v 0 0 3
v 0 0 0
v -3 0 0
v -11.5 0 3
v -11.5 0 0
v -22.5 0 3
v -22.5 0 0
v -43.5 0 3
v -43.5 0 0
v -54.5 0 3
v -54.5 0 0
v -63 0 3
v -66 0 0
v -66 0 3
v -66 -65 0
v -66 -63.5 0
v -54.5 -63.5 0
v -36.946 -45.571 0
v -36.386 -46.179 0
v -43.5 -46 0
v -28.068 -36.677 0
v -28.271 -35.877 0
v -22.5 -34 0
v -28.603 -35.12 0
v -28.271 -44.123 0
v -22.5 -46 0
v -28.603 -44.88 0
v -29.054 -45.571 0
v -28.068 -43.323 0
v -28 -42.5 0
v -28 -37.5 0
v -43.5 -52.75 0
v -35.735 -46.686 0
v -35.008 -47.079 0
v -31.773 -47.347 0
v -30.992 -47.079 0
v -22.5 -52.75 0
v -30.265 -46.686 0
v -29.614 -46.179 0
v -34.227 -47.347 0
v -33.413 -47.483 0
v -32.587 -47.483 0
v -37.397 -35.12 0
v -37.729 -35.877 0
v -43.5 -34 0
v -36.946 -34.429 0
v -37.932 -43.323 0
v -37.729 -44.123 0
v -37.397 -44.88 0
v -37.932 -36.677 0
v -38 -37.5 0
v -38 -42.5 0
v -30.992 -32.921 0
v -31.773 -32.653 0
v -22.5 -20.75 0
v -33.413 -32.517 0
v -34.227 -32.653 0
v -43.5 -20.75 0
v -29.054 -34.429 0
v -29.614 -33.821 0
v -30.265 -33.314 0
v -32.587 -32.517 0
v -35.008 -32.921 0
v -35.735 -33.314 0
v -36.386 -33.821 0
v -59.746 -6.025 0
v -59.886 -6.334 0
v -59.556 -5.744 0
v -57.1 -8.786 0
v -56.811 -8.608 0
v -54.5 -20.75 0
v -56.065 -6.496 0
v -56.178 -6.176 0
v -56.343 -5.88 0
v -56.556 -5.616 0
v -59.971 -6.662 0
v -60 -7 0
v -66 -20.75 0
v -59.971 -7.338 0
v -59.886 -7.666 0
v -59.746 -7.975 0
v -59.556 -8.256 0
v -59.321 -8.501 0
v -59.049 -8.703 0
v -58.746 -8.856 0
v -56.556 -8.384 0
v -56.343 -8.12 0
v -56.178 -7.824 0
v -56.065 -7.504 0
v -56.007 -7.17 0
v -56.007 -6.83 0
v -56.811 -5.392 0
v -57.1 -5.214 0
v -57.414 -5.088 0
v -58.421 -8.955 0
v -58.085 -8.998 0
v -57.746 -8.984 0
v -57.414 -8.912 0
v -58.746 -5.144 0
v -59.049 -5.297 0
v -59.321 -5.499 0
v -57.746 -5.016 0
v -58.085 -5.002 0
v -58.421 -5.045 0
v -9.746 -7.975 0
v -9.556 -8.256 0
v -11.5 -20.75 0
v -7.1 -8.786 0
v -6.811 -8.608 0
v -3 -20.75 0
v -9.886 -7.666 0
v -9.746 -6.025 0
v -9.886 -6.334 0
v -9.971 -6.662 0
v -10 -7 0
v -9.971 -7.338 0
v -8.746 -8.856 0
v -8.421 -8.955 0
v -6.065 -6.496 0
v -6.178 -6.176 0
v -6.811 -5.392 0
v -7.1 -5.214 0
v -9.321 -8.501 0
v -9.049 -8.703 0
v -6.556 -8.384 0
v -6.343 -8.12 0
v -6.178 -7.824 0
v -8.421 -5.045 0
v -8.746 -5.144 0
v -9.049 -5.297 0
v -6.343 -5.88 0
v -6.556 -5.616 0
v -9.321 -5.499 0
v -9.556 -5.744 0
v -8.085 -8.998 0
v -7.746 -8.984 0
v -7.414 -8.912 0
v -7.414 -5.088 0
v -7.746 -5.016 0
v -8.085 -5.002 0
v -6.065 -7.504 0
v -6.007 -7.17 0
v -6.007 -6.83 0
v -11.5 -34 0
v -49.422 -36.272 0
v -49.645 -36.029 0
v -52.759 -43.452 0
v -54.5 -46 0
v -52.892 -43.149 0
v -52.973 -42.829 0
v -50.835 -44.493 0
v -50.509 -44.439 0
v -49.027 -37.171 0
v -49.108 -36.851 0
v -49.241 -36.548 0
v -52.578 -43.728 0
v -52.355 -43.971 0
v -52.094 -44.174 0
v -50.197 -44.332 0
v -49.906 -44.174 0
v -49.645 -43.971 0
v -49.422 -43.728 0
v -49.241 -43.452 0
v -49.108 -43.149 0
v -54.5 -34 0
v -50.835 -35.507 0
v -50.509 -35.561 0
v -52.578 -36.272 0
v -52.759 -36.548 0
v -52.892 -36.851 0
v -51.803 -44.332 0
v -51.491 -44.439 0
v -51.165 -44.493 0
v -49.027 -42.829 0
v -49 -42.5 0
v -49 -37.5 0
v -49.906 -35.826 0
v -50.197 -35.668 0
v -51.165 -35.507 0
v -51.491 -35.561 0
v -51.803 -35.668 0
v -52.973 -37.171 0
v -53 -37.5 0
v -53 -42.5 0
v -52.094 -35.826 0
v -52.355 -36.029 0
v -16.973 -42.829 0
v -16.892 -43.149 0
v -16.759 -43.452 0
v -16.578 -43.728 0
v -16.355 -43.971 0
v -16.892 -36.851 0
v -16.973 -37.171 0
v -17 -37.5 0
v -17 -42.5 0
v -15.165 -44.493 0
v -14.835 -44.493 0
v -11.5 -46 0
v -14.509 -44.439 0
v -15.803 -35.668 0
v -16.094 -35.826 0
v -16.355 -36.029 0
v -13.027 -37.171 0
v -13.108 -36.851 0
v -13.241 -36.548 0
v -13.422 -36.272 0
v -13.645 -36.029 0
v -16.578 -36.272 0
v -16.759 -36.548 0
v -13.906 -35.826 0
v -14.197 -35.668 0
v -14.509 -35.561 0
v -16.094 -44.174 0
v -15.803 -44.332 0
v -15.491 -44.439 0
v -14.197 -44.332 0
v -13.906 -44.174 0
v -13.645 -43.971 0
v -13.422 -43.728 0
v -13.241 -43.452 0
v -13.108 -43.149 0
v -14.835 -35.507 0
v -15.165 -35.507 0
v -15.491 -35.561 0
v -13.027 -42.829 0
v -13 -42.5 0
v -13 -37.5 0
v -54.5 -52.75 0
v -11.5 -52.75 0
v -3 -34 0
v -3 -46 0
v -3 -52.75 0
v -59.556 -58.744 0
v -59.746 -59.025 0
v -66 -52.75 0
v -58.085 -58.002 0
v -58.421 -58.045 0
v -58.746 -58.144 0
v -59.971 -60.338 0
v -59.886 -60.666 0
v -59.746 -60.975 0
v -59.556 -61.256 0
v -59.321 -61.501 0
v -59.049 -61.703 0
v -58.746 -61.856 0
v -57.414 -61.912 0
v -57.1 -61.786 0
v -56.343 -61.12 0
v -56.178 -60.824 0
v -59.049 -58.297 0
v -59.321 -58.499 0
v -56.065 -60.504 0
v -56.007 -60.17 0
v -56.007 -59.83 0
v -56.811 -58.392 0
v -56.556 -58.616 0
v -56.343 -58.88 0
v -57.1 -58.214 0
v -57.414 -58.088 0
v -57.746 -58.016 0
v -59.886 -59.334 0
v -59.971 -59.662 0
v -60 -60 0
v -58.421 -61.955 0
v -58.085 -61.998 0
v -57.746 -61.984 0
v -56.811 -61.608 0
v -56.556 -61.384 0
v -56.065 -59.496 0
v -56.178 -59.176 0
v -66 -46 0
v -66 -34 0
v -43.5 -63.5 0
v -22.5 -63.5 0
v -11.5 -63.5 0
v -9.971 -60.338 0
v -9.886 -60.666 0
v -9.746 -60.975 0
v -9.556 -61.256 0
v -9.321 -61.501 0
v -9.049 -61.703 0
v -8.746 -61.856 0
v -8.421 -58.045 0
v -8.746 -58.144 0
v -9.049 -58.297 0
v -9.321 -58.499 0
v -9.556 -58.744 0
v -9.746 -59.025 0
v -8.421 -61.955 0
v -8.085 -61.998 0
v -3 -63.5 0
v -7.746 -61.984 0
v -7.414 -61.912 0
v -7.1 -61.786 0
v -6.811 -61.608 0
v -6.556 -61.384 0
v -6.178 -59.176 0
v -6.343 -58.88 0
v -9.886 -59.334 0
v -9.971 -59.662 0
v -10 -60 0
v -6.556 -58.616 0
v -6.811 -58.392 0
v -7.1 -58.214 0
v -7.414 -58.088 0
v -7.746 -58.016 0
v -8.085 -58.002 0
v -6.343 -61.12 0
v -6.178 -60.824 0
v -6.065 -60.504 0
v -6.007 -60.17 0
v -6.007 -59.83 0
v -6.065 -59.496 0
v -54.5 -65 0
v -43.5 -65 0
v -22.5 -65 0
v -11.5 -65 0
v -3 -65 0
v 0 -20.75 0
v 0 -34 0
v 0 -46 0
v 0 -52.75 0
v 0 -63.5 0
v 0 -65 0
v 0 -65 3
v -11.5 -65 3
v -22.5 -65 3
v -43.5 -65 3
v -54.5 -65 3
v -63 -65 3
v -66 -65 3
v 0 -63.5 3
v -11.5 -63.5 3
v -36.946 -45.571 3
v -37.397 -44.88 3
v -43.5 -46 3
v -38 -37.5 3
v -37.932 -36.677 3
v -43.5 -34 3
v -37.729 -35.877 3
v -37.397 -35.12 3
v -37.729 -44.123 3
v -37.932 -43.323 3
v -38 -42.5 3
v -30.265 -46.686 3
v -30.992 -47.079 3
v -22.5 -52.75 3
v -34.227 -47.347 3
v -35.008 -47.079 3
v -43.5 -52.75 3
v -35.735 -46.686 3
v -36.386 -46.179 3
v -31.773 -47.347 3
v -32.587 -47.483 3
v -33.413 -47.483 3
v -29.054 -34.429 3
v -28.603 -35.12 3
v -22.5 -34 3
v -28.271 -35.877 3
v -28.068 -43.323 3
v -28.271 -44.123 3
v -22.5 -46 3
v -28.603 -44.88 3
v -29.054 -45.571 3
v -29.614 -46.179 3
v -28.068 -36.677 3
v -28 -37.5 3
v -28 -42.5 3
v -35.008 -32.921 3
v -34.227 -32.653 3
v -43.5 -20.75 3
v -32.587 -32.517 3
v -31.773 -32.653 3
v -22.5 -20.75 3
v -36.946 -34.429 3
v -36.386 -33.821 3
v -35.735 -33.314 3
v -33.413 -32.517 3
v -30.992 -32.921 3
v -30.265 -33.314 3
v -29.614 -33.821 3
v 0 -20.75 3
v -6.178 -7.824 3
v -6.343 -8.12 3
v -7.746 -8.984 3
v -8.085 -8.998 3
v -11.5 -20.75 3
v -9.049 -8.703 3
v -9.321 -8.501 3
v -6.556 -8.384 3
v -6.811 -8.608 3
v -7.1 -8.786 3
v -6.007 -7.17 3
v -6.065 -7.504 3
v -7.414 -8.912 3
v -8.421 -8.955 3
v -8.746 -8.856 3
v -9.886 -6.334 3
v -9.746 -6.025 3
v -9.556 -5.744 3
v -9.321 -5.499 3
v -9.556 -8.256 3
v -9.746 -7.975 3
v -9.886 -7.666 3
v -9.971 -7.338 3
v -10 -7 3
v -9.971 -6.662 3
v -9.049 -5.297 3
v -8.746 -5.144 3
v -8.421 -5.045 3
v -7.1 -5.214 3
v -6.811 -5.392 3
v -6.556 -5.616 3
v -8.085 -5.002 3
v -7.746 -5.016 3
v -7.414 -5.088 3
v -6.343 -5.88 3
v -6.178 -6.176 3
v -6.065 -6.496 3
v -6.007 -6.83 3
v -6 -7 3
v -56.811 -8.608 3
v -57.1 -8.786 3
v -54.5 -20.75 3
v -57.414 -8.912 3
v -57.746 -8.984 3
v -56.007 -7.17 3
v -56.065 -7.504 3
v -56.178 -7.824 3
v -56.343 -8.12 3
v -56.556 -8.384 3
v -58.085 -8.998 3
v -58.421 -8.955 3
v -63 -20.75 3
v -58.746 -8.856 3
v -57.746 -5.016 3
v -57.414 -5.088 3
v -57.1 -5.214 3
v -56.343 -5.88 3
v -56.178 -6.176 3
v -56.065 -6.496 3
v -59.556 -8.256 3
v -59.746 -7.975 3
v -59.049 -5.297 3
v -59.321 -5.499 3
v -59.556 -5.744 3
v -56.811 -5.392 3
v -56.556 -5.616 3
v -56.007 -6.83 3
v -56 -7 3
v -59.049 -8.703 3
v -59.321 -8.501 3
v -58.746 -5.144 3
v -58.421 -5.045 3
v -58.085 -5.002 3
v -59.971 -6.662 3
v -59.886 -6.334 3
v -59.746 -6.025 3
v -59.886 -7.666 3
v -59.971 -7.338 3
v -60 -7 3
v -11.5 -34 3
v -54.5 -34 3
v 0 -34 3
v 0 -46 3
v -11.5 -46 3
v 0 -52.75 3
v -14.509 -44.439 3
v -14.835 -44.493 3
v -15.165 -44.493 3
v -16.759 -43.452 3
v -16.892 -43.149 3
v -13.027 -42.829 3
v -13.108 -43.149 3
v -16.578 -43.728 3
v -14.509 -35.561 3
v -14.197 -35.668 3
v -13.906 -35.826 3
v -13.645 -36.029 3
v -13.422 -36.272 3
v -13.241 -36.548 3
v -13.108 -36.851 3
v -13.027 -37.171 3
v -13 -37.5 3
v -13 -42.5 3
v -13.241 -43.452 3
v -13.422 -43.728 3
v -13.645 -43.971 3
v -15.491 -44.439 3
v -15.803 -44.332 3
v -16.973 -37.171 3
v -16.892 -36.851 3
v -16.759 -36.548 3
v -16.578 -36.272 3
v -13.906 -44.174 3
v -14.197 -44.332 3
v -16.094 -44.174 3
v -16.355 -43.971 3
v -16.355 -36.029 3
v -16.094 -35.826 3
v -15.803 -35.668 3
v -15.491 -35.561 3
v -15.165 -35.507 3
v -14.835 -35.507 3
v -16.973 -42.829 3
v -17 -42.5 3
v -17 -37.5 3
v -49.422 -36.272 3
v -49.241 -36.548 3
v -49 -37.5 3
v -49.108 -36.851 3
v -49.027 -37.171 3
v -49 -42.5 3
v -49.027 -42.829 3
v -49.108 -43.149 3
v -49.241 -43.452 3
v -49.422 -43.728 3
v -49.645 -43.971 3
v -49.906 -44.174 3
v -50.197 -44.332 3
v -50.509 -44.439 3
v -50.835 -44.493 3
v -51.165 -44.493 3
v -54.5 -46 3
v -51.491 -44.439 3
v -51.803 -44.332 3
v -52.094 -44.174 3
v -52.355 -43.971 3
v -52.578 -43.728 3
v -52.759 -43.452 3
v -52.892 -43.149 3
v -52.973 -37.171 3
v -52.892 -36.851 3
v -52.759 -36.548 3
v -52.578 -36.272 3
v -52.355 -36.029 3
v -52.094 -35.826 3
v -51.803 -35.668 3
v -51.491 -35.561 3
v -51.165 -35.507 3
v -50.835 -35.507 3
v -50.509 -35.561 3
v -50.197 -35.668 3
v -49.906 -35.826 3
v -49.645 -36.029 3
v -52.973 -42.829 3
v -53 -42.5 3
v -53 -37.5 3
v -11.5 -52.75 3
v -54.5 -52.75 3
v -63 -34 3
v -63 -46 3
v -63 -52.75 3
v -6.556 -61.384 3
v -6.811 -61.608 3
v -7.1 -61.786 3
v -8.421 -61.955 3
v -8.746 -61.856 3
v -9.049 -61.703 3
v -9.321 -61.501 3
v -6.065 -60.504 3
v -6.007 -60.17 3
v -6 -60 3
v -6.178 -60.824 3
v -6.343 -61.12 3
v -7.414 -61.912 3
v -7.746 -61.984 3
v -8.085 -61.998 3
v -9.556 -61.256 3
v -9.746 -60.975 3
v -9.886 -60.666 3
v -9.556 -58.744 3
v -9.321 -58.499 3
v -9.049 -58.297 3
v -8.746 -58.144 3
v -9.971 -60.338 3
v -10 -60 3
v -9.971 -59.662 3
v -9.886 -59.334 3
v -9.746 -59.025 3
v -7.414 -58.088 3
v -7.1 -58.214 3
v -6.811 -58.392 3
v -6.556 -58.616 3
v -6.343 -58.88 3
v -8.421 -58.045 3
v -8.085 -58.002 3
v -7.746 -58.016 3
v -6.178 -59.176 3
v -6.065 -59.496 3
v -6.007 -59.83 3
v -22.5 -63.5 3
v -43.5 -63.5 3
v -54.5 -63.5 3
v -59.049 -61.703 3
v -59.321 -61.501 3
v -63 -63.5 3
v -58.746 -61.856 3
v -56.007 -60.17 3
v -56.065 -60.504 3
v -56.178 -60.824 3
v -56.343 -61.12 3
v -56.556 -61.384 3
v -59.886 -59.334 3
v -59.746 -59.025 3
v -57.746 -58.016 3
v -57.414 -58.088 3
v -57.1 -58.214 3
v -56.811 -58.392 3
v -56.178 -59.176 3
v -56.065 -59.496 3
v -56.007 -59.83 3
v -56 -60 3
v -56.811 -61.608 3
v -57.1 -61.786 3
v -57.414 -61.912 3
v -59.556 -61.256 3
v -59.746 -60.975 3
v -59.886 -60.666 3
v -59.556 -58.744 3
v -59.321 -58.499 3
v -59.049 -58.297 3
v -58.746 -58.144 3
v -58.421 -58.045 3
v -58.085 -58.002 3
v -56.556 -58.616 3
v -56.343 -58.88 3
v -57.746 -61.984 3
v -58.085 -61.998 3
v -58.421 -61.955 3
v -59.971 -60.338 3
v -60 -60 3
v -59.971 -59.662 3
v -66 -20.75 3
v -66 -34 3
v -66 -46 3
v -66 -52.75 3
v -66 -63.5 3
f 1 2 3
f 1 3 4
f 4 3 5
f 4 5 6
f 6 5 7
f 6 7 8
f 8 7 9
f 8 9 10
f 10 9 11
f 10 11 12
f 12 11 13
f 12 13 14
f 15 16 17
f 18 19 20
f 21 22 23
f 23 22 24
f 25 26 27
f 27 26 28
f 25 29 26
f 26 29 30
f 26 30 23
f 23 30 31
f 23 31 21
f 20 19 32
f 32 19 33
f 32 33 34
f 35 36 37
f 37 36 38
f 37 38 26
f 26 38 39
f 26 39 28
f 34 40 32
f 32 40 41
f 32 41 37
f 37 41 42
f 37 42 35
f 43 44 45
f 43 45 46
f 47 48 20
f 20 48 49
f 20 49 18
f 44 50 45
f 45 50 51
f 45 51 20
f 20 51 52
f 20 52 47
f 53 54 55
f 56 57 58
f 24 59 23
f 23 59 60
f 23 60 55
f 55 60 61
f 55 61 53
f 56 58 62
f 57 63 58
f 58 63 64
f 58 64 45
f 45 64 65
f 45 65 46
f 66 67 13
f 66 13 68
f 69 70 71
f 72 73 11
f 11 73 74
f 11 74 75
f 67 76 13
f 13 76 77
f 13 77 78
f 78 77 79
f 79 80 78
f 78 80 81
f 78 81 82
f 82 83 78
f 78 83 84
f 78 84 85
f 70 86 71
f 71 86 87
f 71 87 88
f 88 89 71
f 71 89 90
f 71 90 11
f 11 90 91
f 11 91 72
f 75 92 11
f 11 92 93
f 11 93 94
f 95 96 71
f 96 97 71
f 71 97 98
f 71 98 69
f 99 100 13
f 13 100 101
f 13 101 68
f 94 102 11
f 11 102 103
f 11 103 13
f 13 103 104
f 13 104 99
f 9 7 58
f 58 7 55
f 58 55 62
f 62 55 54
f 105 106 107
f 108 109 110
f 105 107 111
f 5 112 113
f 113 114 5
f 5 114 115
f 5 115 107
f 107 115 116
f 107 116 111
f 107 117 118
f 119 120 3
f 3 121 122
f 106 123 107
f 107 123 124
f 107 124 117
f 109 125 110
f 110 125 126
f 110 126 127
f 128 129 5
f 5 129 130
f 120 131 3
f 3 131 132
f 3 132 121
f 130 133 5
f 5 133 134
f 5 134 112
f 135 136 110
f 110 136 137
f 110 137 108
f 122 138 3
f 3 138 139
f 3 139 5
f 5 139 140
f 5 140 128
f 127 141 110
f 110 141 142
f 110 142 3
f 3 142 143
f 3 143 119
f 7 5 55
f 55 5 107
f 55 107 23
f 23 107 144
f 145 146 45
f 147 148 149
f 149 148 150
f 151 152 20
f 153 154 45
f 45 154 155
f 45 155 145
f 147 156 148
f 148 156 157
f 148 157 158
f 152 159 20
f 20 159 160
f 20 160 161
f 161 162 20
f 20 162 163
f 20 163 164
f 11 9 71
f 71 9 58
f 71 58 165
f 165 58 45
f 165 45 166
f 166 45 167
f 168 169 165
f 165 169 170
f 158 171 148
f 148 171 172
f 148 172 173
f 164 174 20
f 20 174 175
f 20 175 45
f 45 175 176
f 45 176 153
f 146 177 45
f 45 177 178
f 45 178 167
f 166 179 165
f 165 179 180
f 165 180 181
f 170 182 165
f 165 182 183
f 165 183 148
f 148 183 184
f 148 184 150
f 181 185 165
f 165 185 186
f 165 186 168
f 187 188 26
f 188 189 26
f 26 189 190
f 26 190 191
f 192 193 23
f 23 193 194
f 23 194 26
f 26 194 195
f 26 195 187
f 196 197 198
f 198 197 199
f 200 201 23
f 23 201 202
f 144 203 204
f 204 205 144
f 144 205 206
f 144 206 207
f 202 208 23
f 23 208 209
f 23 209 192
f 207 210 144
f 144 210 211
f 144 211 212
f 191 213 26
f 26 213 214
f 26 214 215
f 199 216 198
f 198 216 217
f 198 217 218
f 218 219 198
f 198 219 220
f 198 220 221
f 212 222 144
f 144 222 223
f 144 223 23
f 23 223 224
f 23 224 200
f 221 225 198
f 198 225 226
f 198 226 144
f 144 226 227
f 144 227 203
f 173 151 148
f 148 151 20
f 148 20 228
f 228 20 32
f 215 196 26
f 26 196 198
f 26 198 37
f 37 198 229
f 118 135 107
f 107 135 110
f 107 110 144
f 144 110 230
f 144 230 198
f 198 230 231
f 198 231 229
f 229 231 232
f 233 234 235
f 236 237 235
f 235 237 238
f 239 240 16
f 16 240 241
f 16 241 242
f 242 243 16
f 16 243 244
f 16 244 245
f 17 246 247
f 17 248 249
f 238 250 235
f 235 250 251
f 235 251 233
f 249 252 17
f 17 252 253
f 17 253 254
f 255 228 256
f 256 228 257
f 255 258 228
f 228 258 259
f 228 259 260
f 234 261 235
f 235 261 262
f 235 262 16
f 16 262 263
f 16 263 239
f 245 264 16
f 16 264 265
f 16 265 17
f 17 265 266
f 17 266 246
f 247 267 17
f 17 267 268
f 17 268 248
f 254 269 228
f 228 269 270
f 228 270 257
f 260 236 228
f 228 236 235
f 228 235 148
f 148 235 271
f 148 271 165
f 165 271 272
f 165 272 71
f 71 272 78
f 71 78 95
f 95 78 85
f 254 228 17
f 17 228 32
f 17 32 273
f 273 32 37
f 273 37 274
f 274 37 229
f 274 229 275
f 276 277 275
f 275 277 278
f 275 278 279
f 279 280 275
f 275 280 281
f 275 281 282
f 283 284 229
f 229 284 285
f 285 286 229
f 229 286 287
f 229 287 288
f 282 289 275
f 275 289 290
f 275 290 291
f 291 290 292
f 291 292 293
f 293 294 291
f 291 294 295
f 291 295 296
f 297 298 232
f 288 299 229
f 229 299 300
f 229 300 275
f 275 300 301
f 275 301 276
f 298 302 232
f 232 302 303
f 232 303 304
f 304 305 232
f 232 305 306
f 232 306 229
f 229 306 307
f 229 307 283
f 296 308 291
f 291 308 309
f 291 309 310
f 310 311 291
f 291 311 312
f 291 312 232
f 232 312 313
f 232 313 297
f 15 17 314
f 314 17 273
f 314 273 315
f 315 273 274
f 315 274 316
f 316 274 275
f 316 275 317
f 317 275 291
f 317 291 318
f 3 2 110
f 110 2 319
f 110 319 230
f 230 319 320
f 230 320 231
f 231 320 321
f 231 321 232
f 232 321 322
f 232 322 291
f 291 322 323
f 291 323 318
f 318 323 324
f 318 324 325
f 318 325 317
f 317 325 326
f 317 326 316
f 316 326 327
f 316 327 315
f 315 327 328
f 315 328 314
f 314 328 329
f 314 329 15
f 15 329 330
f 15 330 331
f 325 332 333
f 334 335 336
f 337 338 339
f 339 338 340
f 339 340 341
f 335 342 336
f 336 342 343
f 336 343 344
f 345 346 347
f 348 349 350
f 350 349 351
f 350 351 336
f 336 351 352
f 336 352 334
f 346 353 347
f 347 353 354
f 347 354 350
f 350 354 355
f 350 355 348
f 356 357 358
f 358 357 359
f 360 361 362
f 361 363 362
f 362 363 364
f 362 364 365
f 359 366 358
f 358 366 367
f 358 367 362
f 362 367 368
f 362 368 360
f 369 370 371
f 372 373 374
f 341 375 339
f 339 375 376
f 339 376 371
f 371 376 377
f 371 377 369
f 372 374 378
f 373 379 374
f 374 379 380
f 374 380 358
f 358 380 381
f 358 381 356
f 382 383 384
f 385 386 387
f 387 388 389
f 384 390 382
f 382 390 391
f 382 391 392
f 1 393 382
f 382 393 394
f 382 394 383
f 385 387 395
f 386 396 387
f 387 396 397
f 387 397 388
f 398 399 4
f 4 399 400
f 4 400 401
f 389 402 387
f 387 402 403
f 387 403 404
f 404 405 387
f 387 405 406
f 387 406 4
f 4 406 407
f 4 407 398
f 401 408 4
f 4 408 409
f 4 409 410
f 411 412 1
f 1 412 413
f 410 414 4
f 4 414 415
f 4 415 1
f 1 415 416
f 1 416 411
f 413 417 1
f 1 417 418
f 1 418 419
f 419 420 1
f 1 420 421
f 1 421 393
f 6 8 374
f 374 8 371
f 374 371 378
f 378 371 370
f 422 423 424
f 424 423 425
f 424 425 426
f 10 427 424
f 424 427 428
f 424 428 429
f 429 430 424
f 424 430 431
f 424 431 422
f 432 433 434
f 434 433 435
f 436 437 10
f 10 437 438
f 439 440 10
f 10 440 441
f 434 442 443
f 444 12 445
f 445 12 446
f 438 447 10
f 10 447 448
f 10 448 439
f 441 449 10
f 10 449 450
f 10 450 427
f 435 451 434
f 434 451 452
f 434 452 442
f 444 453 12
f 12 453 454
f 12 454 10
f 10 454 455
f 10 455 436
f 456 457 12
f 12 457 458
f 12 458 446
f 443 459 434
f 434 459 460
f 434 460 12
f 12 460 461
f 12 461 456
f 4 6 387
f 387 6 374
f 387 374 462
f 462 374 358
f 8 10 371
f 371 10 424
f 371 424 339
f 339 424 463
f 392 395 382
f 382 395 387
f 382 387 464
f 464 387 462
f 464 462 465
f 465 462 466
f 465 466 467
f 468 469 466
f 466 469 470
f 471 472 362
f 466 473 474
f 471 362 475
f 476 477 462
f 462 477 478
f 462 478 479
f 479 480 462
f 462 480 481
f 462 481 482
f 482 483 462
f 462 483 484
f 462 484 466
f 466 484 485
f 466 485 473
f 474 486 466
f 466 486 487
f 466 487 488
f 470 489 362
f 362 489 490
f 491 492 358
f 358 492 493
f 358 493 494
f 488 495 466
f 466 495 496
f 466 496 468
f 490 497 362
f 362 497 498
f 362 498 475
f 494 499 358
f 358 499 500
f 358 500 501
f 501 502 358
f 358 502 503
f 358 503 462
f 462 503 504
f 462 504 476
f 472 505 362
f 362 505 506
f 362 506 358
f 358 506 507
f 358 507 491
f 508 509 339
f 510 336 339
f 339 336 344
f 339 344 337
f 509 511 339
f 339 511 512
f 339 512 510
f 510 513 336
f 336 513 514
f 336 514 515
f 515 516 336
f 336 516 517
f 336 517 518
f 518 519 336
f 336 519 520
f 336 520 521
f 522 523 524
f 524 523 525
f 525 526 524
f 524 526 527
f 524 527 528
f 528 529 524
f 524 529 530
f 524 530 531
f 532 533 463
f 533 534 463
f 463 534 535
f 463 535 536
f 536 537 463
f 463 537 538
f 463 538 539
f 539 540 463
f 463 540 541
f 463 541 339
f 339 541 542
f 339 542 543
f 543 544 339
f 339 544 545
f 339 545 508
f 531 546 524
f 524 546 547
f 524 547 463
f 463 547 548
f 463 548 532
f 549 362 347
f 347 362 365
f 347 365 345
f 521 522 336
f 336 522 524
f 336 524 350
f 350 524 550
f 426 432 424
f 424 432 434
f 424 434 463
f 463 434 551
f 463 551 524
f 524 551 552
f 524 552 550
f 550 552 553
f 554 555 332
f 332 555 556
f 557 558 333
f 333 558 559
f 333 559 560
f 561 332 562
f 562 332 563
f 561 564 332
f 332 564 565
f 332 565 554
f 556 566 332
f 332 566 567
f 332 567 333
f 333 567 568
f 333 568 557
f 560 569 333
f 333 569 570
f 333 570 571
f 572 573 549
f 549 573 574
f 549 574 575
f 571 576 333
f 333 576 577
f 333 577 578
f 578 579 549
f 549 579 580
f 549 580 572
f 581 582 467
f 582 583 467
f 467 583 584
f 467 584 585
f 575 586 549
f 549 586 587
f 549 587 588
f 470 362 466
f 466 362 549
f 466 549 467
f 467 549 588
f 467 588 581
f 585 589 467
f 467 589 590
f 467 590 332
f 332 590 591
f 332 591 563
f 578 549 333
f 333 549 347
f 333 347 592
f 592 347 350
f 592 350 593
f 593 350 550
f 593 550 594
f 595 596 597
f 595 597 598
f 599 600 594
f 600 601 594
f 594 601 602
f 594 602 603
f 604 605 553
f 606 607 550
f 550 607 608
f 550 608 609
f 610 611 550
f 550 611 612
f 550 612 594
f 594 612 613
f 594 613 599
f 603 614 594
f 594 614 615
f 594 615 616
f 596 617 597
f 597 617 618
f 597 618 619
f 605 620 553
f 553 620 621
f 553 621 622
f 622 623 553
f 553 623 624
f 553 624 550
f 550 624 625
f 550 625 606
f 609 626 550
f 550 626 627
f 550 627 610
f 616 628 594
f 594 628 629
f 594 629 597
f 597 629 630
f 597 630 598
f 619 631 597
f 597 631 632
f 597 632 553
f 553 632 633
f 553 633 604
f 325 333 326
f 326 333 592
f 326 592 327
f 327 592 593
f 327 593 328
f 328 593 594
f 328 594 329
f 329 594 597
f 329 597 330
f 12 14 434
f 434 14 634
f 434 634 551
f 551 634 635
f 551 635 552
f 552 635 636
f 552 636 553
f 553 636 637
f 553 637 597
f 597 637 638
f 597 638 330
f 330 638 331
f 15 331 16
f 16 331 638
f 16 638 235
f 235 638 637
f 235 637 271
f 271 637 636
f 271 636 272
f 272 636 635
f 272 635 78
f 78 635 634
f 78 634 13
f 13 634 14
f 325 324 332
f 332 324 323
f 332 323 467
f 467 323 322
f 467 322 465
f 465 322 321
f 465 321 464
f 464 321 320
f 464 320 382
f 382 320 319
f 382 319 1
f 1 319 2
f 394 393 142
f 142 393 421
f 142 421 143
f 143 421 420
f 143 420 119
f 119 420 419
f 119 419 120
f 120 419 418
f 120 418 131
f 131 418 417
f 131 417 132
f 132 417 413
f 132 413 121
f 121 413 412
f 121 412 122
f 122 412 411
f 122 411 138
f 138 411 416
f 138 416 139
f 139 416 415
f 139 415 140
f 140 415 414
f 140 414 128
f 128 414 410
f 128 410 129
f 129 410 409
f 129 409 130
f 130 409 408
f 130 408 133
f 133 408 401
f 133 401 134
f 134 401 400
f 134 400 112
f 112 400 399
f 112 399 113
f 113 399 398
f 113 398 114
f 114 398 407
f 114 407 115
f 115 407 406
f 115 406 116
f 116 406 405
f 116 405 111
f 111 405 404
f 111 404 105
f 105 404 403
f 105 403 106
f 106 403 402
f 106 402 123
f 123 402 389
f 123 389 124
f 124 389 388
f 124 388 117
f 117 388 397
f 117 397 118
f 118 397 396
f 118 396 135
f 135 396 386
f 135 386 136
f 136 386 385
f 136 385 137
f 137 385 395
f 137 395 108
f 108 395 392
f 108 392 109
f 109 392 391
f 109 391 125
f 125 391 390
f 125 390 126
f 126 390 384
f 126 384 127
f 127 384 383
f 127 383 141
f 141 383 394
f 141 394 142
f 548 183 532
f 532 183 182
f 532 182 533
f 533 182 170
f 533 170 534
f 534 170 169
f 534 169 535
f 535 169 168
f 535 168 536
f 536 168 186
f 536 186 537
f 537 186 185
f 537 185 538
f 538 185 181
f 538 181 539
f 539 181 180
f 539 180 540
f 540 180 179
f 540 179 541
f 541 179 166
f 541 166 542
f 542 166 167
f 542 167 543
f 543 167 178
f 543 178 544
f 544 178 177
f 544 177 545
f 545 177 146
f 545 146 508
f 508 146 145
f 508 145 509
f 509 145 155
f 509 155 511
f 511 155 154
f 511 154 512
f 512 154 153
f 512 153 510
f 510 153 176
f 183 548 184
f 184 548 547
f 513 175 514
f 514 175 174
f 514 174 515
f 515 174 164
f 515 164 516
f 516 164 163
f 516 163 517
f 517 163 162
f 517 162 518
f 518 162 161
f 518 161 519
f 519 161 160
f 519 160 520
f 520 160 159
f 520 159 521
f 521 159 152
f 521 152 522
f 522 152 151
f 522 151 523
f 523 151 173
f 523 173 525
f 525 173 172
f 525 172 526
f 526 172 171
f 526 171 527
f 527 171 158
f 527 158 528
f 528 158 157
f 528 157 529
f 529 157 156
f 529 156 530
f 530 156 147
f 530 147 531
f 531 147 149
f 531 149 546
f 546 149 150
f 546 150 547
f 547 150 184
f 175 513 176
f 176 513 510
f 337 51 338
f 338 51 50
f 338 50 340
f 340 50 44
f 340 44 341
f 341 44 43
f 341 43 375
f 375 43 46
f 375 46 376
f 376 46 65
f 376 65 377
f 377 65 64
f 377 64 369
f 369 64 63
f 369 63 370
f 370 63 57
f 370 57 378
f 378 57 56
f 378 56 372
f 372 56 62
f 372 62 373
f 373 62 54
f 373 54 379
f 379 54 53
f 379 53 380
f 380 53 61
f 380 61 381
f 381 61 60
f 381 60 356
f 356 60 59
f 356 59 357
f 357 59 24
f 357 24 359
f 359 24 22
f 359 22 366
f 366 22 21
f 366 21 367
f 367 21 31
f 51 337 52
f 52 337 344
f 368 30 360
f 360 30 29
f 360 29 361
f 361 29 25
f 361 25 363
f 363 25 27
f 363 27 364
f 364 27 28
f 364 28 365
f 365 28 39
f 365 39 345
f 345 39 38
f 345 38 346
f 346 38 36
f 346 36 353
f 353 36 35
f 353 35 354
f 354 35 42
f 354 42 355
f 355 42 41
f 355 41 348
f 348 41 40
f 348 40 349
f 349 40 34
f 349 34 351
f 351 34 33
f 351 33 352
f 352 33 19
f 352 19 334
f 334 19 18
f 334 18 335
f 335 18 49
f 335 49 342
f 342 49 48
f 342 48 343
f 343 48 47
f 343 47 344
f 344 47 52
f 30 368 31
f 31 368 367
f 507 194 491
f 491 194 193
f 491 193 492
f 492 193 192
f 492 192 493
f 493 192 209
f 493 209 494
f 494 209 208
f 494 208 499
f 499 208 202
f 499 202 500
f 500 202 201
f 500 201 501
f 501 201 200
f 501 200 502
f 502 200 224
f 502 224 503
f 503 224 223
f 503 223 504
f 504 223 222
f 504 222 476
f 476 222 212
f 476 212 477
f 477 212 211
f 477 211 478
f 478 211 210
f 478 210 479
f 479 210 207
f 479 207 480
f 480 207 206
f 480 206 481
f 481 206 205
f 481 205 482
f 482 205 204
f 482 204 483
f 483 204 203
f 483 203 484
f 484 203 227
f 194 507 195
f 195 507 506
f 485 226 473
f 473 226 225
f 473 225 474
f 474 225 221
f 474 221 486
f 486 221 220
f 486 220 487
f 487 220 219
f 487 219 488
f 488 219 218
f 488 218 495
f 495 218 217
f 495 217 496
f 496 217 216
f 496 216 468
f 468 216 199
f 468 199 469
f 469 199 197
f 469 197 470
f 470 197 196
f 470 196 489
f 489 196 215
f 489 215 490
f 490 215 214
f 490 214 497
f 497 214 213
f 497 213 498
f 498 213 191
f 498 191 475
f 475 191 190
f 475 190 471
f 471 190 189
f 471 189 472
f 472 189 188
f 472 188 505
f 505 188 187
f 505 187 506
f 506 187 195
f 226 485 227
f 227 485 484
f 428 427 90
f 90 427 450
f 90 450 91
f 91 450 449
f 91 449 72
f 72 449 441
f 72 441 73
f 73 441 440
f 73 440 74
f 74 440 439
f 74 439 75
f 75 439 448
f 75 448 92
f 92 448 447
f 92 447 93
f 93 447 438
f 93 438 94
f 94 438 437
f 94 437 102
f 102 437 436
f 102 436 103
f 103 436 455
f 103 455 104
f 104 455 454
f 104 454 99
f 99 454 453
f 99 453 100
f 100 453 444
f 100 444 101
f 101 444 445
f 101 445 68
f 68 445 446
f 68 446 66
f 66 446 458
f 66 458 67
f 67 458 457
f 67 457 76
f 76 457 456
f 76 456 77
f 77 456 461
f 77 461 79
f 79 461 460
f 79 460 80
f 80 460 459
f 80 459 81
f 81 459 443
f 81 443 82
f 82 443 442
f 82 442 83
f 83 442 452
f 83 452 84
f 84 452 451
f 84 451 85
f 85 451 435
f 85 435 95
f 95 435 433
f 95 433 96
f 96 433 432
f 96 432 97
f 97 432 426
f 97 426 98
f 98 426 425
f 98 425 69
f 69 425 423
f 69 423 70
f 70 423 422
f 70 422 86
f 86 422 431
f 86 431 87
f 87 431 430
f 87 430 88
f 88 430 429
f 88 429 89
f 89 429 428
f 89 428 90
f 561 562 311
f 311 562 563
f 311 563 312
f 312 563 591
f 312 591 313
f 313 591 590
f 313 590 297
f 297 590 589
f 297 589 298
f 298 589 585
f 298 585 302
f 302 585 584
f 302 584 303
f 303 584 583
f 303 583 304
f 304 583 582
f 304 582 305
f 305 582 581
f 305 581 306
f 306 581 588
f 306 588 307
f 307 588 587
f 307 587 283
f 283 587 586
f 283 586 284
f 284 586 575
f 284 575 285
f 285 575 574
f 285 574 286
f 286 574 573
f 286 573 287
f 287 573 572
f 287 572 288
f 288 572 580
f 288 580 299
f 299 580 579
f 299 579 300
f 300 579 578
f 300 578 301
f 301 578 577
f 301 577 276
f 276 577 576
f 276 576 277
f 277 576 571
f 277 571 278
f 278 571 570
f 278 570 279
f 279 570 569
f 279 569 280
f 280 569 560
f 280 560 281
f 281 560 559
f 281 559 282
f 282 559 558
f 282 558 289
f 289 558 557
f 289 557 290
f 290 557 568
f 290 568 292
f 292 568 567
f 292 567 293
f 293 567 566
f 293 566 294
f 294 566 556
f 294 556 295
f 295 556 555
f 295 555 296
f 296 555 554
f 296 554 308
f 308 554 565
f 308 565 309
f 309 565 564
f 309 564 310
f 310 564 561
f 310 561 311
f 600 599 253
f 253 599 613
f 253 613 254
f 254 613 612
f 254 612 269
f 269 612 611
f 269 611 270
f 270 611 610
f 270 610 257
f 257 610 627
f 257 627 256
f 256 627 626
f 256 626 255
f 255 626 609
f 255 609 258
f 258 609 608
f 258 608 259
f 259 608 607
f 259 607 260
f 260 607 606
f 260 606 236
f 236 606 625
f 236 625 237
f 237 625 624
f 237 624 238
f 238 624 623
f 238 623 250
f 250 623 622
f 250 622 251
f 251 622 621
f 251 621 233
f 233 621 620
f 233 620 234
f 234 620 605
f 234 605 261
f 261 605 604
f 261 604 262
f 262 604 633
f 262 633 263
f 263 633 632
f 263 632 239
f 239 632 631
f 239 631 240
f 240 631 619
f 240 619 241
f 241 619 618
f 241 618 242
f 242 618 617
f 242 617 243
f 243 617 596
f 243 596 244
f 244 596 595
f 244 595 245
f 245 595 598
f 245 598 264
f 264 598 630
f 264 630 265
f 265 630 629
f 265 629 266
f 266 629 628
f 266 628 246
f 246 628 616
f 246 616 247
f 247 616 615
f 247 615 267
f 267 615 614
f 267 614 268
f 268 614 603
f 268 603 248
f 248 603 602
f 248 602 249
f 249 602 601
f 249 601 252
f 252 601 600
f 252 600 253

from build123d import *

# Parameters (mm, degrees)
SKETCH1_W           = 3
SKETCH1_H           = 65
BOSS_EXTRUDE1_DEPTH = 66
CUT_EXTRUDE3_REACH  = 5
SKETCH5_R           = 2


with BuildPart() as part:
    # Sketch1 → Boss-Extrude1 (new body)
    with BuildSketch(Plane(origin=(0, 0, 0), x_dir=(0, 0, -1), z_dir=(1, 0, 0))):
        with Locations((-1.5, -32.5)):
            Rectangle(SKETCH1_W, SKETCH1_H)
    extrude(amount=-BOSS_EXTRUDE1_DEPTH)

    # Sketch5 → Cut-Extrude3 (cut, up to next)
    with BuildSketch(Plane(origin=(0, 0, 0), x_dir=(-1, 0, 0), z_dir=(0, 0, -1)), mode=Mode.PRIVATE) as cut_extrude3_sk1:
        with Locations((8, -7)):
            Circle(SKETCH5_R)
    cut_extrude3_tool1 = extrude(cut_extrude3_sk1.sketch, amount=-CUT_EXTRUDE3_REACH, mode=Mode.PRIVATE) & part.part
    add(cut_extrude3_tool1.solids().sort_by_distance((-8, -7, 0))[0], mode=Mode.SUBTRACT)
    # Sketch5 → Cut-Extrude3 (cut, up to next)
    with BuildSketch(Plane(origin=(0, 0, 0), x_dir=(-1, 0, 0), z_dir=(0, 0, -1)), mode=Mode.PRIVATE) as cut_extrude3_sk2:
        with Locations((58, -7)):
            Circle(SKETCH5_R)
    cut_extrude3_tool2 = extrude(cut_extrude3_sk2.sketch, amount=-CUT_EXTRUDE3_REACH, mode=Mode.PRIVATE) & part.part
    add(cut_extrude3_tool2.solids().sort_by_distance((-58, -7, 0))[0], mode=Mode.SUBTRACT)
    # Sketch5 → Cut-Extrude3 (cut, up to next)
    with BuildSketch(Plane(origin=(0, 0, 0), x_dir=(-1, 0, 0), z_dir=(0, 0, -1)), mode=Mode.PRIVATE) as cut_extrude3_sk3:
        with Locations((8, -60)):
            Circle(SKETCH5_R)
    cut_extrude3_tool3 = extrude(cut_extrude3_sk3.sketch, amount=-CUT_EXTRUDE3_REACH, mode=Mode.PRIVATE) & part.part
    add(cut_extrude3_tool3.solids().sort_by_distance((-8, -60, 0))[0], mode=Mode.SUBTRACT)
    # Sketch5 → Cut-Extrude3 (cut, up to next)
    with BuildSketch(Plane(origin=(0, 0, 0), x_dir=(-1, 0, 0), z_dir=(0, 0, -1)), mode=Mode.PRIVATE) as cut_extrude3_sk4:
        with Locations((58, -60)):
            Circle(SKETCH5_R)
    cut_extrude3_tool4 = extrude(cut_extrude3_sk4.sketch, amount=-CUT_EXTRUDE3_REACH, mode=Mode.PRIVATE) & part.part
    add(cut_extrude3_tool4.solids().sort_by_distance((-58, -60, 0))[0], mode=Mode.SUBTRACT)
    # Sketch5 → Cut-Extrude3 (cut, up to next)
    with BuildSketch(Plane(origin=(0, 0, 0), x_dir=(-1, 0, 0), z_dir=(0, 0, -1)), mode=Mode.PRIVATE) as cut_extrude3_sk5:
        with BuildLine():
            Line((38, -37.5), (38, -42.5))
            ThreePointArc((38, -42.5), (33, -47.5), (28, -42.5))
            Line((28, -42.5), (28, -37.5))
            ThreePointArc((28, -37.5), (33, -32.5), (38, -37.5))
        make_face()
    cut_extrude3_tool5 = extrude(cut_extrude3_sk5.sketch, amount=-CUT_EXTRUDE3_REACH, mode=Mode.PRIVATE) & part.part
    add(cut_extrude3_tool5.solids().sort_by_distance((-33, -40, 0))[0], mode=Mode.SUBTRACT)
    # Sketch5 → Cut-Extrude3 (cut, up to next)
    with BuildSketch(Plane(origin=(0, 0, 0), x_dir=(-1, 0, 0), z_dir=(0, 0, -1)), mode=Mode.PRIVATE) as cut_extrude3_sk6:
        with BuildLine():
            Line((17, -37.5), (17, -42.5))
            ThreePointArc((17, -42.5), (15, -44.5), (13, -42.5))
            Line((13, -42.5), (13, -37.5))
            ThreePointArc((13, -37.5), (15, -35.5), (17, -37.5))
        make_face()
    cut_extrude3_tool6 = extrude(cut_extrude3_sk6.sketch, amount=-CUT_EXTRUDE3_REACH, mode=Mode.PRIVATE) & part.part
    add(cut_extrude3_tool6.solids().sort_by_distance((-15, -40, 0))[0], mode=Mode.SUBTRACT)
    # Sketch5 → Cut-Extrude3 (cut, up to next)
    with BuildSketch(Plane(origin=(0, 0, 0), x_dir=(-1, 0, 0), z_dir=(0, 0, -1)), mode=Mode.PRIVATE) as cut_extrude3_sk7:
        with BuildLine():
            Line((53, -37.5), (53, -42.5))
            ThreePointArc((53, -42.5), (51, -44.5), (49, -42.5))
            Line((49, -42.5), (49, -37.5))
            ThreePointArc((49, -37.5), (51, -35.5), (53, -37.5))
        make_face()
    cut_extrude3_tool7 = extrude(cut_extrude3_sk7.sketch, amount=-CUT_EXTRUDE3_REACH, mode=Mode.PRIVATE) & part.part
    add(cut_extrude3_tool7.solids().sort_by_distance((-51, -40, 0))[0], mode=Mode.SUBTRACT)


solid = part.part
